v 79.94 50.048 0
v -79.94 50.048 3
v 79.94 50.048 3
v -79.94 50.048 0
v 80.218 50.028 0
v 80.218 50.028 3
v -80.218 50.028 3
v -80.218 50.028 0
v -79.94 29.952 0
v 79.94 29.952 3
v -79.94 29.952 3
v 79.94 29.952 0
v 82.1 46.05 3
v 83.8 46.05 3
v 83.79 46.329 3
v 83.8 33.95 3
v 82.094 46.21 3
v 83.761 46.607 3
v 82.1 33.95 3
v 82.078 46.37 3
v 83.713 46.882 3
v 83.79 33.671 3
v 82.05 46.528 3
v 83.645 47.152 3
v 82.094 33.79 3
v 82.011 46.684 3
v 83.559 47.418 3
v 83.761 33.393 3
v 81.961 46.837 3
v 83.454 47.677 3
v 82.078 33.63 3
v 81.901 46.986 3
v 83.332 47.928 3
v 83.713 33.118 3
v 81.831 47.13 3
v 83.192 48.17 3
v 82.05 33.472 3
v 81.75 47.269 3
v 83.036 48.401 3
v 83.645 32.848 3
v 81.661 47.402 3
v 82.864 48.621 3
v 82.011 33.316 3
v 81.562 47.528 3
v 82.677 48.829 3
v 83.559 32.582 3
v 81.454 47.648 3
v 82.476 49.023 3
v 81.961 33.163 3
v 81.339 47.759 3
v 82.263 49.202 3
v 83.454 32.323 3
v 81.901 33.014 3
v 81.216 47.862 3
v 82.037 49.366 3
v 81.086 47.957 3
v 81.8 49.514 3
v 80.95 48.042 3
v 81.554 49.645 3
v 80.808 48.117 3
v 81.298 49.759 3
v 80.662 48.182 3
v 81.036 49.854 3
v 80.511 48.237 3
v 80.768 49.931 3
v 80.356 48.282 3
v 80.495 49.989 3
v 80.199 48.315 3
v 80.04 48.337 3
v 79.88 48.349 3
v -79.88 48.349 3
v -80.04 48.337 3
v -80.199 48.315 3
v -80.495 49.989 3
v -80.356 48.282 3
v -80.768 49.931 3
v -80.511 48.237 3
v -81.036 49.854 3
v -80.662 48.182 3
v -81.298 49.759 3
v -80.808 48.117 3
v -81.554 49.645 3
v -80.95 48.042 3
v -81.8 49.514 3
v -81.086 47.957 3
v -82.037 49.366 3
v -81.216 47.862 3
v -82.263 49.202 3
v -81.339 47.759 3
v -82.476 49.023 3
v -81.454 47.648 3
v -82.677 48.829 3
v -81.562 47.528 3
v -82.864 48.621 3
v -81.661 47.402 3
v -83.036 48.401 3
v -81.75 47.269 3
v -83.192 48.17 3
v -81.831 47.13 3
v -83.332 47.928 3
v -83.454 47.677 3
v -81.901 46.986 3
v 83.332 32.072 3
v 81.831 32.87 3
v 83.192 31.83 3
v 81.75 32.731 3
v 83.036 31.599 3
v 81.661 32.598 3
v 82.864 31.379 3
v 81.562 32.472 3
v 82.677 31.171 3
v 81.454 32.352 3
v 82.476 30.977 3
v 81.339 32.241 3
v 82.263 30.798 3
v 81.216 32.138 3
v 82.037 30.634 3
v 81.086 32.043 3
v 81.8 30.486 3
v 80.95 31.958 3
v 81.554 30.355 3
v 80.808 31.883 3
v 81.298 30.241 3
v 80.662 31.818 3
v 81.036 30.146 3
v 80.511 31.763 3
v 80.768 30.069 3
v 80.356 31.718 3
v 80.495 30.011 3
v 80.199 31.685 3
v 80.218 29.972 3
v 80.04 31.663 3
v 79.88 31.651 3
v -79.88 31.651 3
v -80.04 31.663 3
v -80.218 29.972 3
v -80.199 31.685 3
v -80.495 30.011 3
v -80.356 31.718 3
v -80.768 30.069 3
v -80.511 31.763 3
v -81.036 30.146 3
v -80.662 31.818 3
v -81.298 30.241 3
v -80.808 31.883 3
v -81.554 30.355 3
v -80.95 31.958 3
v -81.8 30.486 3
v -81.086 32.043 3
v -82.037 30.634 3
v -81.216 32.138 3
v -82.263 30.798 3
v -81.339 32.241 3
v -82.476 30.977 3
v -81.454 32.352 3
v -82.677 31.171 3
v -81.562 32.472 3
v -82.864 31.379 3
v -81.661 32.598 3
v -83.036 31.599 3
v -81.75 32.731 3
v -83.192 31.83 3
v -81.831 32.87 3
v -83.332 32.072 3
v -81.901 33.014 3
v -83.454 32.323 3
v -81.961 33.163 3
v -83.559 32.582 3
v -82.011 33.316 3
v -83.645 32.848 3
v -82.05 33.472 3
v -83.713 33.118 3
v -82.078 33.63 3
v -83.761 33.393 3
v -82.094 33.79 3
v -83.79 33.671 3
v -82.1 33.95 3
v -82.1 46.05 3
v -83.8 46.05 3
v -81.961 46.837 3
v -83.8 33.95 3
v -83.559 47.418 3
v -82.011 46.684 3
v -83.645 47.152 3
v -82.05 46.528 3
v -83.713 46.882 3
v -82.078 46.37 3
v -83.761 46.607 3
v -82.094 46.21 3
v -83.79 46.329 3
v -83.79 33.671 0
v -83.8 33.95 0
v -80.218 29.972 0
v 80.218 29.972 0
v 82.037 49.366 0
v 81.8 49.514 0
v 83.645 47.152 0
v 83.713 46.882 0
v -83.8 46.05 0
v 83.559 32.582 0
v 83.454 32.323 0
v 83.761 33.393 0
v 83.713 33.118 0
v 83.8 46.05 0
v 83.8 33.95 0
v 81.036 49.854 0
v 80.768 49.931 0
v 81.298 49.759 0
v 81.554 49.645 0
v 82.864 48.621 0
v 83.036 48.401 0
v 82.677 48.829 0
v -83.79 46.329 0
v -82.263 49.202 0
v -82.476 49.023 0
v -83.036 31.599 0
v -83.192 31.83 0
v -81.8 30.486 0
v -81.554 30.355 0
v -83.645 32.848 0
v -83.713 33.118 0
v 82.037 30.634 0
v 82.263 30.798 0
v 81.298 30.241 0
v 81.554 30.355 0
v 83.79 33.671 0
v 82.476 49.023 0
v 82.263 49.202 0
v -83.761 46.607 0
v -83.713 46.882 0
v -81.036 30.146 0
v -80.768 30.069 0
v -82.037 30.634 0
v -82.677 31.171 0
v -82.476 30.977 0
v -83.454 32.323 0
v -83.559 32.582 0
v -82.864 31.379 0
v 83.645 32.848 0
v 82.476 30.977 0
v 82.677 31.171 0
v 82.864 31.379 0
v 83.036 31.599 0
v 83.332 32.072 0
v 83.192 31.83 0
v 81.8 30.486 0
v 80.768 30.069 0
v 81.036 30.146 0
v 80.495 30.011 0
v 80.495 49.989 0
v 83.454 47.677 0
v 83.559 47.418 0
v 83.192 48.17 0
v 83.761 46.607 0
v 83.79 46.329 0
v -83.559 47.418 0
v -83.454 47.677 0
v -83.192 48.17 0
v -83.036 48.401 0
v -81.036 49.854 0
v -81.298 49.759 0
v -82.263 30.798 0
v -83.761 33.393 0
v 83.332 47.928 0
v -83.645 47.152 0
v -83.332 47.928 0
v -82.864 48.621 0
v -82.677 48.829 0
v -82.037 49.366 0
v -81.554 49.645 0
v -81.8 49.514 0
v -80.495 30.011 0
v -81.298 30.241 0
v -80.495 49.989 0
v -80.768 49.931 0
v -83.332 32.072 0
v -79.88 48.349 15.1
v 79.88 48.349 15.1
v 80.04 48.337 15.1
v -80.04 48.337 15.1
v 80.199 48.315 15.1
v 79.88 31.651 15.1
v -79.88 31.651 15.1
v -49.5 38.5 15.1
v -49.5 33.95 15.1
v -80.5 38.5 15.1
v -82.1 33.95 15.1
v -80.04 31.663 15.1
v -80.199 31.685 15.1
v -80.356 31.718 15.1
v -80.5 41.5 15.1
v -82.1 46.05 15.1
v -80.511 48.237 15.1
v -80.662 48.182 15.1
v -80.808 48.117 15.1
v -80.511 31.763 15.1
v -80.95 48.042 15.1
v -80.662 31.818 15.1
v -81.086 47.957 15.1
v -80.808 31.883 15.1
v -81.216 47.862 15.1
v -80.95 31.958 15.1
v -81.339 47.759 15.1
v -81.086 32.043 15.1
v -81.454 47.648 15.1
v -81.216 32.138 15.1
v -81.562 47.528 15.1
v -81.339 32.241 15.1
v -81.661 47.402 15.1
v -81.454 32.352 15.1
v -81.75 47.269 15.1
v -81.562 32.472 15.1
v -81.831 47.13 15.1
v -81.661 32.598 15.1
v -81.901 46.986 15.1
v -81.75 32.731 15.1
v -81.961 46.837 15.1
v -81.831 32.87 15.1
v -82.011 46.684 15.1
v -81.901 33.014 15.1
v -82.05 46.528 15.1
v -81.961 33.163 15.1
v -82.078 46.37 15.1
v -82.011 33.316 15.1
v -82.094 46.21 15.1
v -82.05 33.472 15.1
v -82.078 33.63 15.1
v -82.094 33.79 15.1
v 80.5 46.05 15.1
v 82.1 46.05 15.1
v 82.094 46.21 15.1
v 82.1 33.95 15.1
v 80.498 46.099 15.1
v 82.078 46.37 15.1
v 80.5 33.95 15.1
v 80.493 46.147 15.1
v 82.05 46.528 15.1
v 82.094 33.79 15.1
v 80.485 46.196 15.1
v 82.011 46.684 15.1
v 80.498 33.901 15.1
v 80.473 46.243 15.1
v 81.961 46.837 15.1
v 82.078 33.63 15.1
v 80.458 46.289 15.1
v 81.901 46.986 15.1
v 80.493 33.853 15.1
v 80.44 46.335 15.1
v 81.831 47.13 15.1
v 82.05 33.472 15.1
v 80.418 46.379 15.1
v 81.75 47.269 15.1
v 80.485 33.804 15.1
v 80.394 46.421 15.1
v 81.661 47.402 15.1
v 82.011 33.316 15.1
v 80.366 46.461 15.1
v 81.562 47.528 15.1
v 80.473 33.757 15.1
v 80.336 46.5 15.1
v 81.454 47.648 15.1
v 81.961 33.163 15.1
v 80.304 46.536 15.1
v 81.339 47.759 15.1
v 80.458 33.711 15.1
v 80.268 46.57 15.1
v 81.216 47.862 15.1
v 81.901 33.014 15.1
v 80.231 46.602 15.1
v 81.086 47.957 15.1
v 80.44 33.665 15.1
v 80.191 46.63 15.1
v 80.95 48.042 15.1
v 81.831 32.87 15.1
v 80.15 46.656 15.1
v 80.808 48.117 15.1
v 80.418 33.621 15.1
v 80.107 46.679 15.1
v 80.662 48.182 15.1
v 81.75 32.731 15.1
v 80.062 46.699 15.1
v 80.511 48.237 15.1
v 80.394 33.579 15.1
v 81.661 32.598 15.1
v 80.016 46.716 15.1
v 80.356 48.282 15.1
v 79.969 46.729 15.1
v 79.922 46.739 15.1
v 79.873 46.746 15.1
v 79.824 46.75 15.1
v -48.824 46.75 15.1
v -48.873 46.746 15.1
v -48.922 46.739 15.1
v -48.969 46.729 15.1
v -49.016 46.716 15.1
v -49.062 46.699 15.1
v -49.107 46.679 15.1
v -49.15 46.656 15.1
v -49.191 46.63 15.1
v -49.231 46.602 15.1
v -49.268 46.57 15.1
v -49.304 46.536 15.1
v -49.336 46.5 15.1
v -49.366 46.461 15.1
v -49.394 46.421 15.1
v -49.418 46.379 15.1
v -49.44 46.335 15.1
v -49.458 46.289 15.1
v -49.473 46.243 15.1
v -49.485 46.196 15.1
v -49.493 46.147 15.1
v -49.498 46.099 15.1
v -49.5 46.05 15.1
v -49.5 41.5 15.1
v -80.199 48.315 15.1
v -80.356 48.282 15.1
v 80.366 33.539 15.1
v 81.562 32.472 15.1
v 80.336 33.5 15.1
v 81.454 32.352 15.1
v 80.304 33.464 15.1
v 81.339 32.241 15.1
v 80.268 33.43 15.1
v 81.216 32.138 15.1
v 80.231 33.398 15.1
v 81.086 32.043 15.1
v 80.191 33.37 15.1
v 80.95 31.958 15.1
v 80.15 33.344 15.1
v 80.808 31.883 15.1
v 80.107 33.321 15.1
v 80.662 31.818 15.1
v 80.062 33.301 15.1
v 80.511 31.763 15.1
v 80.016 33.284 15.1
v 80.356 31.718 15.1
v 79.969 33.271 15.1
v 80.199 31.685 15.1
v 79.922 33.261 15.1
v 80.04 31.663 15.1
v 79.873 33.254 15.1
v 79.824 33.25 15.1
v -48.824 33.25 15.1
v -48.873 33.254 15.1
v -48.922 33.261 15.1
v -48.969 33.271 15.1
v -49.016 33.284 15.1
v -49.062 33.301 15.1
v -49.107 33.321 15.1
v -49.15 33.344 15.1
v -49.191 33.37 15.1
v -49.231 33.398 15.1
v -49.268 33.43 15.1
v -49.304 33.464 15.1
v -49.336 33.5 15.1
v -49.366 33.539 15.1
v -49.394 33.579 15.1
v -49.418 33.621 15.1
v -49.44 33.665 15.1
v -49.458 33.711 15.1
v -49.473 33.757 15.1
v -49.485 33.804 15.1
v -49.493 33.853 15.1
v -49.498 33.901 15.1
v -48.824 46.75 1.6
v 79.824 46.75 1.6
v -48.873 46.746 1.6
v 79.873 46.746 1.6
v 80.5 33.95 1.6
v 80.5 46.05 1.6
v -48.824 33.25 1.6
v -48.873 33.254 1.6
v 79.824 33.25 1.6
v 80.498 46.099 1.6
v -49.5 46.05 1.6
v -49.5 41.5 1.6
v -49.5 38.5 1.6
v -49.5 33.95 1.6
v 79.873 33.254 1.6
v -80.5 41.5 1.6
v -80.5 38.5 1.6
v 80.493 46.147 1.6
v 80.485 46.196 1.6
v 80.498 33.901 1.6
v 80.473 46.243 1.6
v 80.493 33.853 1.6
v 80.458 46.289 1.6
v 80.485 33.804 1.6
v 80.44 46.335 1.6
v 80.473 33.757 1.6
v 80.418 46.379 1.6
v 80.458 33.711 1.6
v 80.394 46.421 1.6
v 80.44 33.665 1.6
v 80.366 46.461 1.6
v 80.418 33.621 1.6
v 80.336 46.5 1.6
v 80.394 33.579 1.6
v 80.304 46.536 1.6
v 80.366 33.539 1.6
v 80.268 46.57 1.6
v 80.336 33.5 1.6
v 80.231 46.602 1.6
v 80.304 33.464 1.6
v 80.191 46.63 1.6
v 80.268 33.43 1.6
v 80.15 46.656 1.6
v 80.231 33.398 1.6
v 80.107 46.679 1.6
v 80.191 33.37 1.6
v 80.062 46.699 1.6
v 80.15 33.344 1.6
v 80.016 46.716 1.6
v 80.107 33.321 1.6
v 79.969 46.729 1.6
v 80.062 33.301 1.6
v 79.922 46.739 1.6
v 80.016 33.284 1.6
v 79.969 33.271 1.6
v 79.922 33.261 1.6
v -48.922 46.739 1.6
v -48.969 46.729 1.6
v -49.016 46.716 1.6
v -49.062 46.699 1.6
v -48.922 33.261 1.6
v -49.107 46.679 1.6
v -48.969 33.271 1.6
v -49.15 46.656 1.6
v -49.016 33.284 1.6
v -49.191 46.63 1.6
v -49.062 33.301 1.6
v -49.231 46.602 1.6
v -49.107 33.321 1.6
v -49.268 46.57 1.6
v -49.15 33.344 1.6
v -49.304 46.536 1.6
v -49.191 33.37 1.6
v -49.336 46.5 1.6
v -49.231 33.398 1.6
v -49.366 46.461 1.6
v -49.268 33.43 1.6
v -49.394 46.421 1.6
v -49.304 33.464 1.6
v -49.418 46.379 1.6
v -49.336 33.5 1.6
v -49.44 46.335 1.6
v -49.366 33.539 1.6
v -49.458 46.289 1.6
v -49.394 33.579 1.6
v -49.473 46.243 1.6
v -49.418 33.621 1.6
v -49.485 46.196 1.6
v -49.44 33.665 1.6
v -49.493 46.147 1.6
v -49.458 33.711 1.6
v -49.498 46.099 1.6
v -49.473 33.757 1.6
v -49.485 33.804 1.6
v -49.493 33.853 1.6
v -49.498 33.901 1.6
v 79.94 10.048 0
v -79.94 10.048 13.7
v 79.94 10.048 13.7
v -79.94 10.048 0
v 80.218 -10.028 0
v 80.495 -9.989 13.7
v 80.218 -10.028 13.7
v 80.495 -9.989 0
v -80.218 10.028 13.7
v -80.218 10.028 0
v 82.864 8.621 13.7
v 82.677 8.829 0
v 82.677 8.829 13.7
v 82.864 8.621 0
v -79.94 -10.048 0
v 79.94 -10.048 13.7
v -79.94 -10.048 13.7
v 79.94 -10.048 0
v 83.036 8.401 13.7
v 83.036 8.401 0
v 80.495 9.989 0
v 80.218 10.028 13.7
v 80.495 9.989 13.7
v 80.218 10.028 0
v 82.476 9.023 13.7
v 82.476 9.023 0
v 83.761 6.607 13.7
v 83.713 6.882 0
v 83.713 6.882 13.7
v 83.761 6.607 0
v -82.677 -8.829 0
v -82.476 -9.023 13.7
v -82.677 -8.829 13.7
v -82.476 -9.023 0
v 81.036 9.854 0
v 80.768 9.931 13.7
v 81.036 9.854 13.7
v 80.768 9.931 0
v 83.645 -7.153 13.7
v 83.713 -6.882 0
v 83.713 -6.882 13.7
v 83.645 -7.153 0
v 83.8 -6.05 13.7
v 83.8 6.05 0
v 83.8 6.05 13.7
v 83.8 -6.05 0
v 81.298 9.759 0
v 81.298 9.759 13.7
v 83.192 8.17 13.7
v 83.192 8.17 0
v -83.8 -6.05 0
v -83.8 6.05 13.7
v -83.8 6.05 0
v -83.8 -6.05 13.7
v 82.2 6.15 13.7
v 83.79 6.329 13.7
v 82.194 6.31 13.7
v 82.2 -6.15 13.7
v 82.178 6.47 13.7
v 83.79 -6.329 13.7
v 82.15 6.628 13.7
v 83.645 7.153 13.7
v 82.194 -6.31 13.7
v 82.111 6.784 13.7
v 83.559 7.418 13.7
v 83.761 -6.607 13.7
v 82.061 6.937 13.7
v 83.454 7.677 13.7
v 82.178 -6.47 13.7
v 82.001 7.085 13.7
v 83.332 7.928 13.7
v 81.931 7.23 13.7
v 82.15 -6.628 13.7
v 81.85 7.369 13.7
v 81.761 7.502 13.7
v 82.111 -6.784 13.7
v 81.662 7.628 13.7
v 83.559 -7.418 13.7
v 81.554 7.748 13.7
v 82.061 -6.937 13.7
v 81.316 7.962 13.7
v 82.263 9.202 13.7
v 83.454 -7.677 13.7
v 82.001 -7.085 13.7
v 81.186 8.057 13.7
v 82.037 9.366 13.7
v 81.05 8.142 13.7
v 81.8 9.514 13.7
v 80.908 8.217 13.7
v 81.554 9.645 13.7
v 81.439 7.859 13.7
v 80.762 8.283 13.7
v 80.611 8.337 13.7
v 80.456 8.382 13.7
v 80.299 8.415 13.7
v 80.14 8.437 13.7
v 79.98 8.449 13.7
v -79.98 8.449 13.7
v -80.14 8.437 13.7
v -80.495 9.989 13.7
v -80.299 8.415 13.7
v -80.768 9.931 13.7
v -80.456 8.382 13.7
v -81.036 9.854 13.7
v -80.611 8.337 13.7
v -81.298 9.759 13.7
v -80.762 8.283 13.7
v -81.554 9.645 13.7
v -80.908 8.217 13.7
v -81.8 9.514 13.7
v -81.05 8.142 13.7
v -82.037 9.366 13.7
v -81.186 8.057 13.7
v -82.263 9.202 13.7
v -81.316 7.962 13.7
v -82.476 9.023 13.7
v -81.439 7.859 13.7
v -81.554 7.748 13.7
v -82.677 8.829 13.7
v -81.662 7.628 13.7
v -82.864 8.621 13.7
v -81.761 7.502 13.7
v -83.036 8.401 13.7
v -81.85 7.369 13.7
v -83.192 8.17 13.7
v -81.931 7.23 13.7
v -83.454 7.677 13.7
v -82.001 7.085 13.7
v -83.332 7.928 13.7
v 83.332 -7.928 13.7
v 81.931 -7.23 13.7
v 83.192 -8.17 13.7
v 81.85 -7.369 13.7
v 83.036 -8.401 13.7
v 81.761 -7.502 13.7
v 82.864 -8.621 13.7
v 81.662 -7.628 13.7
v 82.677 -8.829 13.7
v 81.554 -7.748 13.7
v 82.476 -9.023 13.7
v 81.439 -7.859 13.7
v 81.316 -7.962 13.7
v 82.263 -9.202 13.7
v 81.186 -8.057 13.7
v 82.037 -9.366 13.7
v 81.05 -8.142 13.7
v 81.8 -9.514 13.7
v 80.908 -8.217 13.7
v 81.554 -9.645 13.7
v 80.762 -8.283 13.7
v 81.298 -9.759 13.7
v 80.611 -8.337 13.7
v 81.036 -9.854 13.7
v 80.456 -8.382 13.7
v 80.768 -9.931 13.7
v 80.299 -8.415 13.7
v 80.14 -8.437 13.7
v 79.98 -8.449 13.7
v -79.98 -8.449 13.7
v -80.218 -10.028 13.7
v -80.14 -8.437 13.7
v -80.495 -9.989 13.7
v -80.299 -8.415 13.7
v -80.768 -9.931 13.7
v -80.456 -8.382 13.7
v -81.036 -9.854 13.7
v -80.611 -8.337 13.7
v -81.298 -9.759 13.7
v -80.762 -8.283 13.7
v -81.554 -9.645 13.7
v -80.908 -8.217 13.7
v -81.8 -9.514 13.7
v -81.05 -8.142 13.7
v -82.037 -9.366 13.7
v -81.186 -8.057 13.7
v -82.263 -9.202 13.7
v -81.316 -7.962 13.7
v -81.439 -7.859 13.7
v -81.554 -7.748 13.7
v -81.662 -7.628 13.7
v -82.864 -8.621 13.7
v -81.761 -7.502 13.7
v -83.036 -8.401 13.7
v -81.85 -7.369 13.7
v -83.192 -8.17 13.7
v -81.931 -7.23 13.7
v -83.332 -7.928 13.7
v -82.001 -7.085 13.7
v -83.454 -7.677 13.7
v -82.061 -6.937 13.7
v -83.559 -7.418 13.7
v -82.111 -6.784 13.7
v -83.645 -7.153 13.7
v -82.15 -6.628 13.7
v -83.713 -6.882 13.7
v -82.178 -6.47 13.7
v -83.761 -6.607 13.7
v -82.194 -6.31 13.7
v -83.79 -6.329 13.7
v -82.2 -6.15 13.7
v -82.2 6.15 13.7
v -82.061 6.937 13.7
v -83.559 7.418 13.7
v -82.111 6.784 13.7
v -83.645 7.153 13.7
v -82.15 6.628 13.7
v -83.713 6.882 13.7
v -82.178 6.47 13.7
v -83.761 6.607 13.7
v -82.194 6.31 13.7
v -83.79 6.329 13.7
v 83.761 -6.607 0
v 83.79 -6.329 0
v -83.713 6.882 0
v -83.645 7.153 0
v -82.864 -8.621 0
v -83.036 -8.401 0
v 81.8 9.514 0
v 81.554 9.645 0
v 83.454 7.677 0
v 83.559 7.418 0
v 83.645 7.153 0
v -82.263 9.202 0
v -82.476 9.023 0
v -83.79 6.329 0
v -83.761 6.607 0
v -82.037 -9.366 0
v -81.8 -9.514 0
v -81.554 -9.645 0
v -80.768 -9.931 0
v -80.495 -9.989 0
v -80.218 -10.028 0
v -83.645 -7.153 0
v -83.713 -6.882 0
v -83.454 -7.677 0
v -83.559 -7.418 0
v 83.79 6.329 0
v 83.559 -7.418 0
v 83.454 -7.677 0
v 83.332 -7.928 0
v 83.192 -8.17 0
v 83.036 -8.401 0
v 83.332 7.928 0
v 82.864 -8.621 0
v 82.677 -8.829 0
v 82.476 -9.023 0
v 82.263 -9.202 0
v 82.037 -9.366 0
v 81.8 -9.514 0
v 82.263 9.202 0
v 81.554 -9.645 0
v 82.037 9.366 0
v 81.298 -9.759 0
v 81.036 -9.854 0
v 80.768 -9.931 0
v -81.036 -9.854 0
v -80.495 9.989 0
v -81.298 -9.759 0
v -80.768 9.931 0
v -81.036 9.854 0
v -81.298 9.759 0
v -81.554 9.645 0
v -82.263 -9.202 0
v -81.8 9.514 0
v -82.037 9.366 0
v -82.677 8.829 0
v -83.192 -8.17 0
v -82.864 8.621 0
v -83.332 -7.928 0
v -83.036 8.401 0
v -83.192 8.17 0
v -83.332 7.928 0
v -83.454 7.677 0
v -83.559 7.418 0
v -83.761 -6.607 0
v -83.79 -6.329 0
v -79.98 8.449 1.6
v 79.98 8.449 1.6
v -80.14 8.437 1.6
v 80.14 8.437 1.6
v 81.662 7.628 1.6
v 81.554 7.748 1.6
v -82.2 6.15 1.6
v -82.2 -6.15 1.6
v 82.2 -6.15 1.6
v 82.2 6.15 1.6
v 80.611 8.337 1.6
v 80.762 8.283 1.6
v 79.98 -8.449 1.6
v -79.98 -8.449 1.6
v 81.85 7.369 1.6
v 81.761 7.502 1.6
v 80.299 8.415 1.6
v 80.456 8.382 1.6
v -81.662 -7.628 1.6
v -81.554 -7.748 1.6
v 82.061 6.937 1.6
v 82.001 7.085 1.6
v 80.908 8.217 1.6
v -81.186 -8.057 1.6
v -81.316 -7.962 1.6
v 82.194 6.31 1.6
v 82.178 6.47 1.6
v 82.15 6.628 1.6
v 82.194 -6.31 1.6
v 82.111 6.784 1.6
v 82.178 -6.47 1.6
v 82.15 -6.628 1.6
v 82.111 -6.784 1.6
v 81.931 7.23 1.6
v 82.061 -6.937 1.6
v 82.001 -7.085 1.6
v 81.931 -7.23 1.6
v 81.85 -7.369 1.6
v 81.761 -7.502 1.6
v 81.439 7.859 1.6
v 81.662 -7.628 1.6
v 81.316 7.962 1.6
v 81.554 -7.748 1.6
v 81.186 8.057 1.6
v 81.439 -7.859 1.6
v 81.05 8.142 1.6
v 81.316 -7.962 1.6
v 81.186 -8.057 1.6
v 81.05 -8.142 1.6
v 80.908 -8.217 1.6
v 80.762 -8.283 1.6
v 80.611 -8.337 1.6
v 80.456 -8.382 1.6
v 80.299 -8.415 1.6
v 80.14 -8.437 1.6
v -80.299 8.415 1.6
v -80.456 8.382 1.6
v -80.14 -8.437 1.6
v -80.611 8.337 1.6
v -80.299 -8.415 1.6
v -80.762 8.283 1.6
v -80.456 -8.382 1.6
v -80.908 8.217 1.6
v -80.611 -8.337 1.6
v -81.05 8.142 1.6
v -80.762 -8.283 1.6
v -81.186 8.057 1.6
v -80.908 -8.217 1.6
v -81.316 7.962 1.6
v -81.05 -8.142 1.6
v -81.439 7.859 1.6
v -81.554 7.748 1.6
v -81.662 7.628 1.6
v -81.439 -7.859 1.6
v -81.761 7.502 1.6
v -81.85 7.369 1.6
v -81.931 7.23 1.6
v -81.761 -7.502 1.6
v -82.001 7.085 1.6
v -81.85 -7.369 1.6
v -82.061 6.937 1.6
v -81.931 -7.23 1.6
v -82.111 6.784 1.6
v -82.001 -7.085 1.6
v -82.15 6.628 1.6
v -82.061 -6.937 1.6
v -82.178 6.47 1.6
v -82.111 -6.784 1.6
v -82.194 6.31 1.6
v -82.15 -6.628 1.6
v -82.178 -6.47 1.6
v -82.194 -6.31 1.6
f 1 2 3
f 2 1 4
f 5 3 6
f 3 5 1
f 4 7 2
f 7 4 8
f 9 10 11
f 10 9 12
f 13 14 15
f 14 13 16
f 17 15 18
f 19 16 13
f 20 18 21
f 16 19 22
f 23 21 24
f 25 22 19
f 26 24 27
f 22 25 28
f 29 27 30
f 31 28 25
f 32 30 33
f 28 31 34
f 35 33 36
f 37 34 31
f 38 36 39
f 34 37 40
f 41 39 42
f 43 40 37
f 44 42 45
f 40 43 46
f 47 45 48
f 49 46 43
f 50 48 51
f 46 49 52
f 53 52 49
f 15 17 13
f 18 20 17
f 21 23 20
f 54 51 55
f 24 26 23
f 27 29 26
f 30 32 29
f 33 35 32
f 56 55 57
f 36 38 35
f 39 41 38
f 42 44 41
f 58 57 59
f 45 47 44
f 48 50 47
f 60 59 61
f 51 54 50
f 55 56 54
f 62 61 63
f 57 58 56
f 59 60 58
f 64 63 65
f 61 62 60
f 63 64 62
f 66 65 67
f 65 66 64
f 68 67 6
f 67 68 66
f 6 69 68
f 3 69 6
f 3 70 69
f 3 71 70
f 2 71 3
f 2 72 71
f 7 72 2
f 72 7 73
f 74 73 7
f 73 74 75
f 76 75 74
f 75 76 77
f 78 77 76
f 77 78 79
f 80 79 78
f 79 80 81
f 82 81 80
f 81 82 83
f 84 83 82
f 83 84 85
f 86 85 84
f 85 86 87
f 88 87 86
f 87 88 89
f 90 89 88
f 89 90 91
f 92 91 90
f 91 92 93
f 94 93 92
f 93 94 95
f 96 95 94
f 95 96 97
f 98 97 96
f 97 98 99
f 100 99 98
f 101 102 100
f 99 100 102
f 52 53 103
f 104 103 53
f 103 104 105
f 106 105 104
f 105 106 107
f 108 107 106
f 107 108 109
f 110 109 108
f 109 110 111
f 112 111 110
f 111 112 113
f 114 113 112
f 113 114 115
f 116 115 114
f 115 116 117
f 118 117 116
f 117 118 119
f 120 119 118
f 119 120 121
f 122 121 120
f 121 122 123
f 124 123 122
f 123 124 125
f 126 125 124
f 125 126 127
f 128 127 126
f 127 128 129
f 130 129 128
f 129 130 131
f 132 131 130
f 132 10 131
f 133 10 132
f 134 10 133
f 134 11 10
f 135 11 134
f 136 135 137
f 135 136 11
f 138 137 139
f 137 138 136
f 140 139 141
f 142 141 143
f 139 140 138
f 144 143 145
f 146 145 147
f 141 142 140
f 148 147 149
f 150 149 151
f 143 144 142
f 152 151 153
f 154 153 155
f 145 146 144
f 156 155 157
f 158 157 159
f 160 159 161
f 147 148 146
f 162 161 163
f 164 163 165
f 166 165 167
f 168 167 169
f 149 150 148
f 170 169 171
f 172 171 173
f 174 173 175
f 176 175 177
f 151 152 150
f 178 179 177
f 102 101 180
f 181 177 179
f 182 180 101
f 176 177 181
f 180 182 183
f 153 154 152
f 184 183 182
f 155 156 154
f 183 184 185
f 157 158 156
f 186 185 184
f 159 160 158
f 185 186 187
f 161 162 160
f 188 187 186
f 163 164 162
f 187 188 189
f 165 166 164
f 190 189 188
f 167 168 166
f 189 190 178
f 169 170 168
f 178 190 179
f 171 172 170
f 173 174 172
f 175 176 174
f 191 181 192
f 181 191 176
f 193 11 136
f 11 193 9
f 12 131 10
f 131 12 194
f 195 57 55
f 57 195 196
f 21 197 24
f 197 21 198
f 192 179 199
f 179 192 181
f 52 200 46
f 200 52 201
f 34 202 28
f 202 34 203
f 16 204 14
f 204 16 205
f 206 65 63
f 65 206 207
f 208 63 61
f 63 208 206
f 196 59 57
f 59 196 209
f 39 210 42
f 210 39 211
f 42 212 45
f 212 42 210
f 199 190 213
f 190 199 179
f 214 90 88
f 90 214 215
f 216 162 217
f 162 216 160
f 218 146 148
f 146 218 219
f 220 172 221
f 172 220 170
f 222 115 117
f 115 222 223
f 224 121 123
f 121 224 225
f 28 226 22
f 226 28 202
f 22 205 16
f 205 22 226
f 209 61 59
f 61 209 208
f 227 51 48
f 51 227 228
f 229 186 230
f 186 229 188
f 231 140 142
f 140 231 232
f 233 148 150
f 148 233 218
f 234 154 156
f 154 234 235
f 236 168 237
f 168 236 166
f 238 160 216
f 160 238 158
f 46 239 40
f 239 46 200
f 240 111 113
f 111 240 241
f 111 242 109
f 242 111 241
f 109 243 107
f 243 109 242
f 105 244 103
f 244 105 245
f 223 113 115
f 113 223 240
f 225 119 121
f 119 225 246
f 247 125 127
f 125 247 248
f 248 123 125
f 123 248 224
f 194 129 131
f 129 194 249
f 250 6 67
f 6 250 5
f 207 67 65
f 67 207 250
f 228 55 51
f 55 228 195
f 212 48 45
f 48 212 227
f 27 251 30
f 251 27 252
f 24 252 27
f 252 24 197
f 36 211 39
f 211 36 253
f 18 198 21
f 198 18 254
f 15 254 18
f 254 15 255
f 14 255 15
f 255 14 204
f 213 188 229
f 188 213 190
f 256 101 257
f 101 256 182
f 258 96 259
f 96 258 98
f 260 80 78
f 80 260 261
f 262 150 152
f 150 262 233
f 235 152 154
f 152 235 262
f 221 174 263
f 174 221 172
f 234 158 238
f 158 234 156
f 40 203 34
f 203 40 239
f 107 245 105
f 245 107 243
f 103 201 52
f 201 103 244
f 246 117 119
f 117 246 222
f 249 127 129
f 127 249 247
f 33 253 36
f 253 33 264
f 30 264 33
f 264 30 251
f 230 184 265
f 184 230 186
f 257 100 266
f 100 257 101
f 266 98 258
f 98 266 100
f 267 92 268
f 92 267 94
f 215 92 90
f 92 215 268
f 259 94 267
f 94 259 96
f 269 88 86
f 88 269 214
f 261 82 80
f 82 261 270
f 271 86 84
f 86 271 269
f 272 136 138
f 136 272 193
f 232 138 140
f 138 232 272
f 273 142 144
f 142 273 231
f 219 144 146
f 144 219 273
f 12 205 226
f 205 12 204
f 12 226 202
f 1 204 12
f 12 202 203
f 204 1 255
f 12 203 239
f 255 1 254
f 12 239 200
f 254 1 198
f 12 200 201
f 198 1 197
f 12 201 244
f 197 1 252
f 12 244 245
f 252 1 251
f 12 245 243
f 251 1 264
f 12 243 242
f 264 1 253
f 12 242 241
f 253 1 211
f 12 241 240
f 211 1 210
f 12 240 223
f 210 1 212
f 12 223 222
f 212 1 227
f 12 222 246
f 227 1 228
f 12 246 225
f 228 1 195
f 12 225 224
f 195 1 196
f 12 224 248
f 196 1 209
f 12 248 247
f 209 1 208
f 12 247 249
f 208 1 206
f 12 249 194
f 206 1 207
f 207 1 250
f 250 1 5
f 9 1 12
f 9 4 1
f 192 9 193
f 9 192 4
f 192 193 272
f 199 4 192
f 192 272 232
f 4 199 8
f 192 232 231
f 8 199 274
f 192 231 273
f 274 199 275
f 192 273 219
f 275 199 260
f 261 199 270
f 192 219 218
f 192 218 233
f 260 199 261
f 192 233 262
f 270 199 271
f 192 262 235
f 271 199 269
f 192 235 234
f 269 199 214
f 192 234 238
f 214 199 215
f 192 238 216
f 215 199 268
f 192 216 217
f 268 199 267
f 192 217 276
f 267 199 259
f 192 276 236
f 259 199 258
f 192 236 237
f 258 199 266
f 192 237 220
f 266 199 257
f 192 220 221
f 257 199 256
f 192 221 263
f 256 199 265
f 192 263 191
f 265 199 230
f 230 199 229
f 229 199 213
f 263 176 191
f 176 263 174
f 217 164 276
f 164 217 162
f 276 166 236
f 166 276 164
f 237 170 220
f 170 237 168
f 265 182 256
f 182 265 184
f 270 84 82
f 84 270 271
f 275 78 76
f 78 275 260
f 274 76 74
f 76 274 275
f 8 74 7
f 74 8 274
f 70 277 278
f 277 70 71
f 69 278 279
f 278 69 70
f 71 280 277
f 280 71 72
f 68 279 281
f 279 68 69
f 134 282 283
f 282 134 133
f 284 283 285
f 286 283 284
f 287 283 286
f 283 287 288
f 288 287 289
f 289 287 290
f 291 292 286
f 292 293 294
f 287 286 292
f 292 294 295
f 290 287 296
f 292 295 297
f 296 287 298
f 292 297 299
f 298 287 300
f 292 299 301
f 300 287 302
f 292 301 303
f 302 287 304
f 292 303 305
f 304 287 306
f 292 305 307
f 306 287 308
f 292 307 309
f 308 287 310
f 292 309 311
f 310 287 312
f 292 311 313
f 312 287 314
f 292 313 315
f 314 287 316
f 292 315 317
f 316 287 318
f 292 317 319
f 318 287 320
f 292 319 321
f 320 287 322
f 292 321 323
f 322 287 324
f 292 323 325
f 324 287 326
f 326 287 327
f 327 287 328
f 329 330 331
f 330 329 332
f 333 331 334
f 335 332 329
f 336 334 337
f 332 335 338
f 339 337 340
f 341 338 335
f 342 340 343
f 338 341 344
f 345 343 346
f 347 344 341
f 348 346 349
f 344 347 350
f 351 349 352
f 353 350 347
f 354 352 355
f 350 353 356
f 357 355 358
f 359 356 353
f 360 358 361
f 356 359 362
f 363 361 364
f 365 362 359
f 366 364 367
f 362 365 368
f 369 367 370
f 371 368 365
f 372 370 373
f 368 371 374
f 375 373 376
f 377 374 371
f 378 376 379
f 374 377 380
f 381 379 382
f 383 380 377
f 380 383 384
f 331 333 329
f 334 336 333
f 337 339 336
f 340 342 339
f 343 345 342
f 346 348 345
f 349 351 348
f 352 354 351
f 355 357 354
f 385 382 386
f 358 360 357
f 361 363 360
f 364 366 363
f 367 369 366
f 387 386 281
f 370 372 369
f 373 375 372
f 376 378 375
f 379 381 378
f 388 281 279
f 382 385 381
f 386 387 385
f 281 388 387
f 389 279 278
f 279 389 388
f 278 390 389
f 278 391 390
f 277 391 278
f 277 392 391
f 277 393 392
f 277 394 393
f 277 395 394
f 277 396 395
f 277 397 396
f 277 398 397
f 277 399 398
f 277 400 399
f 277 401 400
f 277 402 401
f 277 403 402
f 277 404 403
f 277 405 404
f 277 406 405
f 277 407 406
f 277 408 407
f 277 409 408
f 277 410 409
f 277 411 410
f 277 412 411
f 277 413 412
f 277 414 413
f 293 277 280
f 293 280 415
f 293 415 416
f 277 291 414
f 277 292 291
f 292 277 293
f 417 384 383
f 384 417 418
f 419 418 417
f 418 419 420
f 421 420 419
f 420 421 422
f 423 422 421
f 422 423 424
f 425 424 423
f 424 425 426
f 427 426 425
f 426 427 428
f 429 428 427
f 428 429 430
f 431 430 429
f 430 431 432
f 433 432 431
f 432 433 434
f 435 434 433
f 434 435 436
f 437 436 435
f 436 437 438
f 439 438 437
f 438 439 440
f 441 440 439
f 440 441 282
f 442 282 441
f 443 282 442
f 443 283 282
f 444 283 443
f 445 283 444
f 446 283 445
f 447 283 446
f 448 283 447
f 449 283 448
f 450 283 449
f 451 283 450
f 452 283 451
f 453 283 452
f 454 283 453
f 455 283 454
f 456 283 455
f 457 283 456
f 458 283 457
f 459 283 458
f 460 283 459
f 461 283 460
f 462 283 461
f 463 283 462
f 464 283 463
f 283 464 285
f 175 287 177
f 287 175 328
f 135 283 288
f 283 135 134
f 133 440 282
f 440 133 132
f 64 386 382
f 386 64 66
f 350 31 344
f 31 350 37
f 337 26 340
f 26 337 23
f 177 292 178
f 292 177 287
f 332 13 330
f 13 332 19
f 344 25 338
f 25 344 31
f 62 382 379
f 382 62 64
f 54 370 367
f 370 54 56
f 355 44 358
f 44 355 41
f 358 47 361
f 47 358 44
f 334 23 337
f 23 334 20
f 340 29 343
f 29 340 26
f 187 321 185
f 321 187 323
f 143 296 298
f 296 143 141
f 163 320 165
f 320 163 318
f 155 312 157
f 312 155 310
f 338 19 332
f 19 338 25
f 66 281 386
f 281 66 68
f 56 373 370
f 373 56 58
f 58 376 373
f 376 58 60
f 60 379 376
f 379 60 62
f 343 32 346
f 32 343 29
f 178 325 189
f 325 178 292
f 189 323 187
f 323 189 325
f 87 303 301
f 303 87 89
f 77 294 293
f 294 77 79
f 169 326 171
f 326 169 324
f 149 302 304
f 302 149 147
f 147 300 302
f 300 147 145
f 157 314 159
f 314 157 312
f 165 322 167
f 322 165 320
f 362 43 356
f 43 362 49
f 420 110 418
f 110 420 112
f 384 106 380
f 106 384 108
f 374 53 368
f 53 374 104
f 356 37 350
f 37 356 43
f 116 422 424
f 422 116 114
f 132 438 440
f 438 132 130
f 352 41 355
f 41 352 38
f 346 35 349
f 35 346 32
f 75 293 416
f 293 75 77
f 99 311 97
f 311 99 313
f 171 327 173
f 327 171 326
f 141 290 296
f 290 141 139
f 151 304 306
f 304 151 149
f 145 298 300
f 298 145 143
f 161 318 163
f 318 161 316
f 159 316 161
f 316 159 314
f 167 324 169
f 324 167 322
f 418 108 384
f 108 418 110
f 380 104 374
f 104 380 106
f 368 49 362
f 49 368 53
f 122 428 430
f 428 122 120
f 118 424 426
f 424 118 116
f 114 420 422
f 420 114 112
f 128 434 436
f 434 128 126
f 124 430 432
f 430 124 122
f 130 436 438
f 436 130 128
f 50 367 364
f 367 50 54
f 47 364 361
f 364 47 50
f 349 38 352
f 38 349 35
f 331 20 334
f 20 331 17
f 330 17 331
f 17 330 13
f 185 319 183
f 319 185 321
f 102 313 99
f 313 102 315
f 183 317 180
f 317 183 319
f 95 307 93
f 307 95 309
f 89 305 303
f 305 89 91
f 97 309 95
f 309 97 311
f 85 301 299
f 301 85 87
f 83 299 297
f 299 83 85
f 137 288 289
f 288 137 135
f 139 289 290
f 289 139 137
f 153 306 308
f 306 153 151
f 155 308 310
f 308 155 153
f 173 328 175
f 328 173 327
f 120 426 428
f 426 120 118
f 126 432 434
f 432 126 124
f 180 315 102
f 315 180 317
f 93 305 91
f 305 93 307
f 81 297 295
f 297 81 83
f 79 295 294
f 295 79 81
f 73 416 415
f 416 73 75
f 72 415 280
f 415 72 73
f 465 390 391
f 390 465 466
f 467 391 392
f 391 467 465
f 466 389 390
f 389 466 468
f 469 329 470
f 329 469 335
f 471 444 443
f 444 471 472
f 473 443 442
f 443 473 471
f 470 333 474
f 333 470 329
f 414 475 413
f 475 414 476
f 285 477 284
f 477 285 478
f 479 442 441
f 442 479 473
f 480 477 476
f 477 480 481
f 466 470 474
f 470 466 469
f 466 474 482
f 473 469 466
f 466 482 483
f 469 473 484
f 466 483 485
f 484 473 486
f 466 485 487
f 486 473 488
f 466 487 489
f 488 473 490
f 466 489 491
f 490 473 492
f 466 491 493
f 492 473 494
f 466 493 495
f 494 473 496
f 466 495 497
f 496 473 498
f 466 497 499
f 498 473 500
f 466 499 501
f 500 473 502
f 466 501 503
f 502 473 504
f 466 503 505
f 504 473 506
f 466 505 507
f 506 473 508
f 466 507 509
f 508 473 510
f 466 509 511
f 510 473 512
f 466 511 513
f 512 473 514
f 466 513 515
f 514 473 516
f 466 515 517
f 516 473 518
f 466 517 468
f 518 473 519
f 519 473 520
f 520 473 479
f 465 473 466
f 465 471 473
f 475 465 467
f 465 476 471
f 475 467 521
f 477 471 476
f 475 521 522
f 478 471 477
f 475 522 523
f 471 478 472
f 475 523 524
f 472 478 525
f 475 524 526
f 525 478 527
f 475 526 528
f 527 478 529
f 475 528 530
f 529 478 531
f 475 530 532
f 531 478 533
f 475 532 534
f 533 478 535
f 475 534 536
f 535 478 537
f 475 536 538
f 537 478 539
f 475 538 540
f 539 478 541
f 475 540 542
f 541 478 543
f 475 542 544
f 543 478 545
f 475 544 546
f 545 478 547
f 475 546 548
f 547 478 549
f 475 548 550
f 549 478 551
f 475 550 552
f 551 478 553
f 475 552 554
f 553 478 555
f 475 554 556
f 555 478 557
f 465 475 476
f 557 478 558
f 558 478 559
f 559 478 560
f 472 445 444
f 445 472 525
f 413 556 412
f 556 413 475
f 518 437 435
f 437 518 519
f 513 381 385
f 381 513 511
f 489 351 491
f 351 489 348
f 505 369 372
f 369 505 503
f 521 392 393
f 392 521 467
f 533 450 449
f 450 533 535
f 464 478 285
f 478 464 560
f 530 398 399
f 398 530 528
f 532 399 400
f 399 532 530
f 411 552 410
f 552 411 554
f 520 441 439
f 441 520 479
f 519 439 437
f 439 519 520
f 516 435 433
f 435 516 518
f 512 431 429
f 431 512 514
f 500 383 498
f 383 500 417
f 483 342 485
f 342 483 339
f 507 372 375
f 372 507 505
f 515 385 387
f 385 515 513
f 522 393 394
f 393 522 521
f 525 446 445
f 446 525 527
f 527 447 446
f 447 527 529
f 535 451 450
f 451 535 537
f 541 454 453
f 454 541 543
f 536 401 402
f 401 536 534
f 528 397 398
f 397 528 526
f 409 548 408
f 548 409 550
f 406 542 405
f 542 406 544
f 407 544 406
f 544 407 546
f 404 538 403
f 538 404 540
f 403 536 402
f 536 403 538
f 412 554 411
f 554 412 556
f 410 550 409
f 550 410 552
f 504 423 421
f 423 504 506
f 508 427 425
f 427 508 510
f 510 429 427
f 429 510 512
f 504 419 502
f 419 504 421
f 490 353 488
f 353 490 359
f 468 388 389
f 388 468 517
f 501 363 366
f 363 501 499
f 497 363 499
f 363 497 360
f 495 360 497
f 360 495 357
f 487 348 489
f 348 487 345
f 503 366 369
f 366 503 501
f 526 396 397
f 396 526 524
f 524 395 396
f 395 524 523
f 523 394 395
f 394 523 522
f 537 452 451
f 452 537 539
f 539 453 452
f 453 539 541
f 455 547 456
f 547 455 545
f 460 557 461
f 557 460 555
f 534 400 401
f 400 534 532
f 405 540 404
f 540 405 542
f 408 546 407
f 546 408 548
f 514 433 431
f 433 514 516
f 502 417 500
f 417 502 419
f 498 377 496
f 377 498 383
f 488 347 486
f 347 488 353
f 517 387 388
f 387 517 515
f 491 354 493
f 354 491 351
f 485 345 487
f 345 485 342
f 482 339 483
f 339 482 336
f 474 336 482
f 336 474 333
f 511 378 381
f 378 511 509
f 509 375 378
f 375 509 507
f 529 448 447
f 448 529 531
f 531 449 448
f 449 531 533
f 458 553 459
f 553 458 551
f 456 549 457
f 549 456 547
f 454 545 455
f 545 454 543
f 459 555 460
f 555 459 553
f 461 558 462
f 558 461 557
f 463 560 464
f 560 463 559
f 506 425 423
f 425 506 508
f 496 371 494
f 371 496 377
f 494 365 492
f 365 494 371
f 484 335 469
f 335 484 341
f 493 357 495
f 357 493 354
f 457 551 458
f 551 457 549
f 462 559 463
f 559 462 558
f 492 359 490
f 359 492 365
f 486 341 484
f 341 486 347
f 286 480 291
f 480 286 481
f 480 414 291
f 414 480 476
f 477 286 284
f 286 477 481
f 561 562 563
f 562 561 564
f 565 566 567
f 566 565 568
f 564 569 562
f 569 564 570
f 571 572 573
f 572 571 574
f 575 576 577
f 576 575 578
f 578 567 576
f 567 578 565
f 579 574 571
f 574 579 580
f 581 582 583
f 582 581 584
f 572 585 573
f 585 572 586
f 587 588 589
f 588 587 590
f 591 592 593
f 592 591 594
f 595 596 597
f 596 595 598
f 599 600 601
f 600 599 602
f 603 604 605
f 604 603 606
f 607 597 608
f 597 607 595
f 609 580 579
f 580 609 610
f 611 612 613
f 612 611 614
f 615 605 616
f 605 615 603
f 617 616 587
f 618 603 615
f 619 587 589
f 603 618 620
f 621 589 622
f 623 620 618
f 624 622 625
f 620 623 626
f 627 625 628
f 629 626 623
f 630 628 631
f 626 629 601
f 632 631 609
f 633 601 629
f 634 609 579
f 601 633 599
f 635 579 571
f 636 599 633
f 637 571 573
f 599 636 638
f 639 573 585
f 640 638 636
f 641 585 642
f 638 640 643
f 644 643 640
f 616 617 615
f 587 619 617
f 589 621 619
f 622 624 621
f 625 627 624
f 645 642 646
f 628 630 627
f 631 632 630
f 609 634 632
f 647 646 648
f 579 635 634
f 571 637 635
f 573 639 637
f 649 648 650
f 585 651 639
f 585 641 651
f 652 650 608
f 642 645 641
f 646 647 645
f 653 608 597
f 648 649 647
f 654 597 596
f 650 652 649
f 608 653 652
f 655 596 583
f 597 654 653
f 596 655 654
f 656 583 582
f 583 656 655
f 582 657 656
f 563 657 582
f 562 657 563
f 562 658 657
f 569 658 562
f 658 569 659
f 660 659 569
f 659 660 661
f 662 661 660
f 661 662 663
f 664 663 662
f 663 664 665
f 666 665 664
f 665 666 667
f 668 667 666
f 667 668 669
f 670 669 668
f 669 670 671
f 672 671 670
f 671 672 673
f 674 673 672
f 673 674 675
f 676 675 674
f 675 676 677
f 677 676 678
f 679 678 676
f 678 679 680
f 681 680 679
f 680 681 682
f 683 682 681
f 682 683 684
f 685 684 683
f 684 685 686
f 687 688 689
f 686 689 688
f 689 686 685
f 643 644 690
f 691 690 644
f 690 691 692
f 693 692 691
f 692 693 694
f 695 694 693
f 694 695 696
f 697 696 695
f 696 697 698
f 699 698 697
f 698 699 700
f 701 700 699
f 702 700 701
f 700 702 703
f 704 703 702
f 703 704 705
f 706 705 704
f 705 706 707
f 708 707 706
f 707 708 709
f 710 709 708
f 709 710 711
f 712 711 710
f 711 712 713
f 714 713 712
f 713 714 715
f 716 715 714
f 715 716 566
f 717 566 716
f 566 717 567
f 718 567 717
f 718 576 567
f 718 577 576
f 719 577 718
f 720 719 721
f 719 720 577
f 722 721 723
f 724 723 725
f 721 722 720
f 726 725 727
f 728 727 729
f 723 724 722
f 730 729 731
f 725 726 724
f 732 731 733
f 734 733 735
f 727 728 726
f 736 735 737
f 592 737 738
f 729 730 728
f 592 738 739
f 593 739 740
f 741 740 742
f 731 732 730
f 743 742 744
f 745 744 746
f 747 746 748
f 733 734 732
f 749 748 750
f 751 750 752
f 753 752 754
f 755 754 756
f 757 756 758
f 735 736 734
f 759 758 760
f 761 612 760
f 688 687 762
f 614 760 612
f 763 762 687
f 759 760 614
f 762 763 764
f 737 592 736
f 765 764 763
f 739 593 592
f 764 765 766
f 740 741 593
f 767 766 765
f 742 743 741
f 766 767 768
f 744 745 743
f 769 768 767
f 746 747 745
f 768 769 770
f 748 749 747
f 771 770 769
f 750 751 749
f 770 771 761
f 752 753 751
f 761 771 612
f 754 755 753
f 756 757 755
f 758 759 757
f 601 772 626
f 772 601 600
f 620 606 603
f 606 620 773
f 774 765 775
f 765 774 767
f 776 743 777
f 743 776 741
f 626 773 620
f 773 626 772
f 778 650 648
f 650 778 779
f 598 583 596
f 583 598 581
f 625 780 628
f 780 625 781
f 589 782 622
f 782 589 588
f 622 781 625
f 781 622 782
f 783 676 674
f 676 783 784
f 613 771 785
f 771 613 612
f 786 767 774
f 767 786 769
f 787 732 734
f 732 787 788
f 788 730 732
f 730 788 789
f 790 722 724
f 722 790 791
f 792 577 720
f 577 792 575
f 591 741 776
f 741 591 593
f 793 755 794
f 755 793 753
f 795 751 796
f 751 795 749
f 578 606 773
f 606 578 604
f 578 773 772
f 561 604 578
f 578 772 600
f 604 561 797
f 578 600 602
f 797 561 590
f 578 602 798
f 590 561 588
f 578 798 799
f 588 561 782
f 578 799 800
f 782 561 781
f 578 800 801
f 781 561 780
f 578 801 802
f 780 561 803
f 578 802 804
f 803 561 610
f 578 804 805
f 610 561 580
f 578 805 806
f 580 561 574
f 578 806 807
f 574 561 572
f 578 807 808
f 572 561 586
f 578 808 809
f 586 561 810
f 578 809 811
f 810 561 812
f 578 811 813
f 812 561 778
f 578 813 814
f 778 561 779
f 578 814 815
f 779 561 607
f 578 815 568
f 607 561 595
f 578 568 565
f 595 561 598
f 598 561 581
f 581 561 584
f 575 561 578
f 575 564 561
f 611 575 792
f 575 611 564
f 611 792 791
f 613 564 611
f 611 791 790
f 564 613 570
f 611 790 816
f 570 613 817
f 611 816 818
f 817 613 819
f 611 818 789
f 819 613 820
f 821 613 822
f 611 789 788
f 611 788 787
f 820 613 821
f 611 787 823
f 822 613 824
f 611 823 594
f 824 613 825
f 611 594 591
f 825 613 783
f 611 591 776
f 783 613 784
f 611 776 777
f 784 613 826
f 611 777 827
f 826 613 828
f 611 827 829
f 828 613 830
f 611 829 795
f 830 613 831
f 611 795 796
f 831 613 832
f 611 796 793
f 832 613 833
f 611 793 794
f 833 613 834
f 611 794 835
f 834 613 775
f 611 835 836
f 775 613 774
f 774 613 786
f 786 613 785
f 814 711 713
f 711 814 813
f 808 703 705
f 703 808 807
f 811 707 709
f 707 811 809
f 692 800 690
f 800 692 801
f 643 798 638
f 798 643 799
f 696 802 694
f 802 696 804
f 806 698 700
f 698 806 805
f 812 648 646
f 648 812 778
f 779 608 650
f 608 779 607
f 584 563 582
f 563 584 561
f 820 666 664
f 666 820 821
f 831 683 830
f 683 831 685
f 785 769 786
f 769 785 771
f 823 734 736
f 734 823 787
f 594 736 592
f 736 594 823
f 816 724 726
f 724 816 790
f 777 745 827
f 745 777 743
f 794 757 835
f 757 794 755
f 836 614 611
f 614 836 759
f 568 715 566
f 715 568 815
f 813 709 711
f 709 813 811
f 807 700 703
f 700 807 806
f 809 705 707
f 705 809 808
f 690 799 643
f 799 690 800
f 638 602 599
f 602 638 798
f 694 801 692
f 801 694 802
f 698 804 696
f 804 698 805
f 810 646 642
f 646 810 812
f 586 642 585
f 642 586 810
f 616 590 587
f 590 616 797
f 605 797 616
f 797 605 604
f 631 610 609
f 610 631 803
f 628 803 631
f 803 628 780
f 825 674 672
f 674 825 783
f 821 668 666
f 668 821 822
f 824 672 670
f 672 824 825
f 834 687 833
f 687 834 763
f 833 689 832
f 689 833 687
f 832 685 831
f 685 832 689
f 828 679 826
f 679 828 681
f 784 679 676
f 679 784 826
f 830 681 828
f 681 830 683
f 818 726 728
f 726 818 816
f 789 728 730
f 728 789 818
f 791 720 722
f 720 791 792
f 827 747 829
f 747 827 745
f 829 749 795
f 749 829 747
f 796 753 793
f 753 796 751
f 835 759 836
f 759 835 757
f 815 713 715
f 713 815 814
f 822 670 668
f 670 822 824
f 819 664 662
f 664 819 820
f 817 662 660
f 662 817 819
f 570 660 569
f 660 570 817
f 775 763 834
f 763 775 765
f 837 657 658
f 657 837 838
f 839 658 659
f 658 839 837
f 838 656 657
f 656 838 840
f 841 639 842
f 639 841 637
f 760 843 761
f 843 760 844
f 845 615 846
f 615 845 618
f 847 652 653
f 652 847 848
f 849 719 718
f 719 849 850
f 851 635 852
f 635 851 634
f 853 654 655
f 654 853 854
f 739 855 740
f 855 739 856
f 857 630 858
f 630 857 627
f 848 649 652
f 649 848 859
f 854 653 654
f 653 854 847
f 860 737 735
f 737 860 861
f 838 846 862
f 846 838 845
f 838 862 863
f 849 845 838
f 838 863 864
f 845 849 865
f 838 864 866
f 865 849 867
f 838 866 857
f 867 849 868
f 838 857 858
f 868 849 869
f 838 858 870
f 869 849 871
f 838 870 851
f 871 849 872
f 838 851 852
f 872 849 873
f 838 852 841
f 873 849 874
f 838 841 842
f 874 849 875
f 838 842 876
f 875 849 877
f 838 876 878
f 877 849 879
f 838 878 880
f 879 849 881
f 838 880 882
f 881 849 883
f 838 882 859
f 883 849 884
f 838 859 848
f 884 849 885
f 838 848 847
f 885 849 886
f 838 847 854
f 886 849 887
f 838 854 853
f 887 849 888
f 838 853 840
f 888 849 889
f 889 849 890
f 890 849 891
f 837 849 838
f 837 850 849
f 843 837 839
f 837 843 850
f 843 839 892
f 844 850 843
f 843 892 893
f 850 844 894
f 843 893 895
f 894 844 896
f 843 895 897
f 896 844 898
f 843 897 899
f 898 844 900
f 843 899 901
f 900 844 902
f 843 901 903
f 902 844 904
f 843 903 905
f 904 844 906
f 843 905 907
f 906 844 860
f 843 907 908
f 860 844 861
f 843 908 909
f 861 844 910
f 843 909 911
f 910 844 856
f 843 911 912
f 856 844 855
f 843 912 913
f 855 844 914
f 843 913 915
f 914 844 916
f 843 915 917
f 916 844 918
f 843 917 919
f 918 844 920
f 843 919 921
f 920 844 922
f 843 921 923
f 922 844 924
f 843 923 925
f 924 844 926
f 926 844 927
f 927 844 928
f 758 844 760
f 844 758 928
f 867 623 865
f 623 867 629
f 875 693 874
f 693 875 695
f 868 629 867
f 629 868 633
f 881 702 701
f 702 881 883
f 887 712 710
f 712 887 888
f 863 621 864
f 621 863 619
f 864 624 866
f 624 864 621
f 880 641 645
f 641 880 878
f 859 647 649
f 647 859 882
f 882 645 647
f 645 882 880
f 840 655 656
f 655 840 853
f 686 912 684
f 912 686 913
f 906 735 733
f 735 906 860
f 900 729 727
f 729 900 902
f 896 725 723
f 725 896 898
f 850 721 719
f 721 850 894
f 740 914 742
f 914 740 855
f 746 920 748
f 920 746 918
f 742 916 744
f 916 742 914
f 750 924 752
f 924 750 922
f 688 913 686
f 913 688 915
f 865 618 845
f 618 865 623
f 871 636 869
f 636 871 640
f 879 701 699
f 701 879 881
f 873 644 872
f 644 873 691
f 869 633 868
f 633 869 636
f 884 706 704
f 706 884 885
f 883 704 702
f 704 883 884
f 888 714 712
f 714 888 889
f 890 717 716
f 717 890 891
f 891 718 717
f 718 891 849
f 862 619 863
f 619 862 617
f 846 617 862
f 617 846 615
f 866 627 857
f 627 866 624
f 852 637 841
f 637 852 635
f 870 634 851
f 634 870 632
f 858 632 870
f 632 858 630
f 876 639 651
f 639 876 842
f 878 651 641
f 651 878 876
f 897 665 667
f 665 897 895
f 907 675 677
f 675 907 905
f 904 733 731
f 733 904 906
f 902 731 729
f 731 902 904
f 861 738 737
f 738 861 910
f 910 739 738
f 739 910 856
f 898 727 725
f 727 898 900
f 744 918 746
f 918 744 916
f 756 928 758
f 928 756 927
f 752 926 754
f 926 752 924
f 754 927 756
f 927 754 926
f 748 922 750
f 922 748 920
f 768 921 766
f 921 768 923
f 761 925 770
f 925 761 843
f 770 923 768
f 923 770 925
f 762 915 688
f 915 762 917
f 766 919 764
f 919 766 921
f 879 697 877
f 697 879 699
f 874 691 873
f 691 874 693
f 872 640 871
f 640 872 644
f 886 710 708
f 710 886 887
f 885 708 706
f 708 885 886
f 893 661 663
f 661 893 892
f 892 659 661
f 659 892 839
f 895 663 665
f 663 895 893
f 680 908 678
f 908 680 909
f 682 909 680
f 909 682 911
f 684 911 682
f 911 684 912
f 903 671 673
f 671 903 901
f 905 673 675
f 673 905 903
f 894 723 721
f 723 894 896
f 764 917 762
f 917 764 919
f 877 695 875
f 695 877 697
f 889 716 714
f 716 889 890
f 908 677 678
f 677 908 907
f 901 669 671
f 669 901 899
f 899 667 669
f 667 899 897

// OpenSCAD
// X-Acto knife case.

// Roundness resolution.
$fn = 90;

eps1 = 0 + 00.01;
eps2 = 2*eps1;

// Base inner length, including the blade slot.
inner_length = 161;

// Base inner width
inner_width = 13.5;

// Base inner height
inner_height = inner_width;

// Wall thickness
wall = 1.6;

// Space betwene base and cover to compensate for printer tolernace.
clearance = 0.1; // was 0.3

// The height of the bottom step outside the base.
step_height = 3; 

// External corner radius.
corner = 4;  

// Blade slot length, should be longer than the visible length fo the blade.
slot_length = 31;

// Width of blade slot.
slot_width = 3;

// Centered at x=0, y=0. On z=0 plane.
module rounded_cube(xlen, ylen, zlen, r) {
  translate([r-xlen/2, r-ylen/2, 0]) minkowski() {
    cube([xlen-2*r, ylen-2*r, zlen/2]);
    cylinder(r=r, h=zlen/2);
 }
}

module base() {
  difference() {
    // Add solid body
    union() {
      rounded_cube(
         inner_length + 4*wall + 2*clearance,
         inner_width + 4*wall + 2*clearance,
         step_height,
         corner);
      
       rounded_cube(
          inner_length + 2*wall,
          inner_width + 2*wall,
          inner_height + wall,
          max(eps1, corner - wall - clearance));
    }
    
    // Remove cavity
    translate([slot_length/2, 0, wall]) 
    rounded_cube(
        inner_length - slot_length,
        inner_width,
        inner_height + eps1,
        max(eps1, corner - wall - clearance - wall));
    
    // Remove blade slot
    translate([-inner_length/2, -slot_width/2, wall])
        cube([slot_length+eps1, slot_width, inner_height+eps1]);
  }      
}

module cover() {
  difference() {
    rounded_cube(
       inner_length + 4*wall + 2*clearance,
       inner_width + 4*wall + 2*clearance,
       inner_height + 2*wall - step_height,
       corner);  

    translate([0, 0, wall])
    rounded_cube(
       inner_length + 2*wall + 2*clearance,
       inner_width + 2*wall + 2*clearance,
       inner_height + eps1,
       max(eps1, corner - wall - clearance));     
  }
}

module main() {
  translate([0, 40, 0]) base();
  cover();
}

main();
